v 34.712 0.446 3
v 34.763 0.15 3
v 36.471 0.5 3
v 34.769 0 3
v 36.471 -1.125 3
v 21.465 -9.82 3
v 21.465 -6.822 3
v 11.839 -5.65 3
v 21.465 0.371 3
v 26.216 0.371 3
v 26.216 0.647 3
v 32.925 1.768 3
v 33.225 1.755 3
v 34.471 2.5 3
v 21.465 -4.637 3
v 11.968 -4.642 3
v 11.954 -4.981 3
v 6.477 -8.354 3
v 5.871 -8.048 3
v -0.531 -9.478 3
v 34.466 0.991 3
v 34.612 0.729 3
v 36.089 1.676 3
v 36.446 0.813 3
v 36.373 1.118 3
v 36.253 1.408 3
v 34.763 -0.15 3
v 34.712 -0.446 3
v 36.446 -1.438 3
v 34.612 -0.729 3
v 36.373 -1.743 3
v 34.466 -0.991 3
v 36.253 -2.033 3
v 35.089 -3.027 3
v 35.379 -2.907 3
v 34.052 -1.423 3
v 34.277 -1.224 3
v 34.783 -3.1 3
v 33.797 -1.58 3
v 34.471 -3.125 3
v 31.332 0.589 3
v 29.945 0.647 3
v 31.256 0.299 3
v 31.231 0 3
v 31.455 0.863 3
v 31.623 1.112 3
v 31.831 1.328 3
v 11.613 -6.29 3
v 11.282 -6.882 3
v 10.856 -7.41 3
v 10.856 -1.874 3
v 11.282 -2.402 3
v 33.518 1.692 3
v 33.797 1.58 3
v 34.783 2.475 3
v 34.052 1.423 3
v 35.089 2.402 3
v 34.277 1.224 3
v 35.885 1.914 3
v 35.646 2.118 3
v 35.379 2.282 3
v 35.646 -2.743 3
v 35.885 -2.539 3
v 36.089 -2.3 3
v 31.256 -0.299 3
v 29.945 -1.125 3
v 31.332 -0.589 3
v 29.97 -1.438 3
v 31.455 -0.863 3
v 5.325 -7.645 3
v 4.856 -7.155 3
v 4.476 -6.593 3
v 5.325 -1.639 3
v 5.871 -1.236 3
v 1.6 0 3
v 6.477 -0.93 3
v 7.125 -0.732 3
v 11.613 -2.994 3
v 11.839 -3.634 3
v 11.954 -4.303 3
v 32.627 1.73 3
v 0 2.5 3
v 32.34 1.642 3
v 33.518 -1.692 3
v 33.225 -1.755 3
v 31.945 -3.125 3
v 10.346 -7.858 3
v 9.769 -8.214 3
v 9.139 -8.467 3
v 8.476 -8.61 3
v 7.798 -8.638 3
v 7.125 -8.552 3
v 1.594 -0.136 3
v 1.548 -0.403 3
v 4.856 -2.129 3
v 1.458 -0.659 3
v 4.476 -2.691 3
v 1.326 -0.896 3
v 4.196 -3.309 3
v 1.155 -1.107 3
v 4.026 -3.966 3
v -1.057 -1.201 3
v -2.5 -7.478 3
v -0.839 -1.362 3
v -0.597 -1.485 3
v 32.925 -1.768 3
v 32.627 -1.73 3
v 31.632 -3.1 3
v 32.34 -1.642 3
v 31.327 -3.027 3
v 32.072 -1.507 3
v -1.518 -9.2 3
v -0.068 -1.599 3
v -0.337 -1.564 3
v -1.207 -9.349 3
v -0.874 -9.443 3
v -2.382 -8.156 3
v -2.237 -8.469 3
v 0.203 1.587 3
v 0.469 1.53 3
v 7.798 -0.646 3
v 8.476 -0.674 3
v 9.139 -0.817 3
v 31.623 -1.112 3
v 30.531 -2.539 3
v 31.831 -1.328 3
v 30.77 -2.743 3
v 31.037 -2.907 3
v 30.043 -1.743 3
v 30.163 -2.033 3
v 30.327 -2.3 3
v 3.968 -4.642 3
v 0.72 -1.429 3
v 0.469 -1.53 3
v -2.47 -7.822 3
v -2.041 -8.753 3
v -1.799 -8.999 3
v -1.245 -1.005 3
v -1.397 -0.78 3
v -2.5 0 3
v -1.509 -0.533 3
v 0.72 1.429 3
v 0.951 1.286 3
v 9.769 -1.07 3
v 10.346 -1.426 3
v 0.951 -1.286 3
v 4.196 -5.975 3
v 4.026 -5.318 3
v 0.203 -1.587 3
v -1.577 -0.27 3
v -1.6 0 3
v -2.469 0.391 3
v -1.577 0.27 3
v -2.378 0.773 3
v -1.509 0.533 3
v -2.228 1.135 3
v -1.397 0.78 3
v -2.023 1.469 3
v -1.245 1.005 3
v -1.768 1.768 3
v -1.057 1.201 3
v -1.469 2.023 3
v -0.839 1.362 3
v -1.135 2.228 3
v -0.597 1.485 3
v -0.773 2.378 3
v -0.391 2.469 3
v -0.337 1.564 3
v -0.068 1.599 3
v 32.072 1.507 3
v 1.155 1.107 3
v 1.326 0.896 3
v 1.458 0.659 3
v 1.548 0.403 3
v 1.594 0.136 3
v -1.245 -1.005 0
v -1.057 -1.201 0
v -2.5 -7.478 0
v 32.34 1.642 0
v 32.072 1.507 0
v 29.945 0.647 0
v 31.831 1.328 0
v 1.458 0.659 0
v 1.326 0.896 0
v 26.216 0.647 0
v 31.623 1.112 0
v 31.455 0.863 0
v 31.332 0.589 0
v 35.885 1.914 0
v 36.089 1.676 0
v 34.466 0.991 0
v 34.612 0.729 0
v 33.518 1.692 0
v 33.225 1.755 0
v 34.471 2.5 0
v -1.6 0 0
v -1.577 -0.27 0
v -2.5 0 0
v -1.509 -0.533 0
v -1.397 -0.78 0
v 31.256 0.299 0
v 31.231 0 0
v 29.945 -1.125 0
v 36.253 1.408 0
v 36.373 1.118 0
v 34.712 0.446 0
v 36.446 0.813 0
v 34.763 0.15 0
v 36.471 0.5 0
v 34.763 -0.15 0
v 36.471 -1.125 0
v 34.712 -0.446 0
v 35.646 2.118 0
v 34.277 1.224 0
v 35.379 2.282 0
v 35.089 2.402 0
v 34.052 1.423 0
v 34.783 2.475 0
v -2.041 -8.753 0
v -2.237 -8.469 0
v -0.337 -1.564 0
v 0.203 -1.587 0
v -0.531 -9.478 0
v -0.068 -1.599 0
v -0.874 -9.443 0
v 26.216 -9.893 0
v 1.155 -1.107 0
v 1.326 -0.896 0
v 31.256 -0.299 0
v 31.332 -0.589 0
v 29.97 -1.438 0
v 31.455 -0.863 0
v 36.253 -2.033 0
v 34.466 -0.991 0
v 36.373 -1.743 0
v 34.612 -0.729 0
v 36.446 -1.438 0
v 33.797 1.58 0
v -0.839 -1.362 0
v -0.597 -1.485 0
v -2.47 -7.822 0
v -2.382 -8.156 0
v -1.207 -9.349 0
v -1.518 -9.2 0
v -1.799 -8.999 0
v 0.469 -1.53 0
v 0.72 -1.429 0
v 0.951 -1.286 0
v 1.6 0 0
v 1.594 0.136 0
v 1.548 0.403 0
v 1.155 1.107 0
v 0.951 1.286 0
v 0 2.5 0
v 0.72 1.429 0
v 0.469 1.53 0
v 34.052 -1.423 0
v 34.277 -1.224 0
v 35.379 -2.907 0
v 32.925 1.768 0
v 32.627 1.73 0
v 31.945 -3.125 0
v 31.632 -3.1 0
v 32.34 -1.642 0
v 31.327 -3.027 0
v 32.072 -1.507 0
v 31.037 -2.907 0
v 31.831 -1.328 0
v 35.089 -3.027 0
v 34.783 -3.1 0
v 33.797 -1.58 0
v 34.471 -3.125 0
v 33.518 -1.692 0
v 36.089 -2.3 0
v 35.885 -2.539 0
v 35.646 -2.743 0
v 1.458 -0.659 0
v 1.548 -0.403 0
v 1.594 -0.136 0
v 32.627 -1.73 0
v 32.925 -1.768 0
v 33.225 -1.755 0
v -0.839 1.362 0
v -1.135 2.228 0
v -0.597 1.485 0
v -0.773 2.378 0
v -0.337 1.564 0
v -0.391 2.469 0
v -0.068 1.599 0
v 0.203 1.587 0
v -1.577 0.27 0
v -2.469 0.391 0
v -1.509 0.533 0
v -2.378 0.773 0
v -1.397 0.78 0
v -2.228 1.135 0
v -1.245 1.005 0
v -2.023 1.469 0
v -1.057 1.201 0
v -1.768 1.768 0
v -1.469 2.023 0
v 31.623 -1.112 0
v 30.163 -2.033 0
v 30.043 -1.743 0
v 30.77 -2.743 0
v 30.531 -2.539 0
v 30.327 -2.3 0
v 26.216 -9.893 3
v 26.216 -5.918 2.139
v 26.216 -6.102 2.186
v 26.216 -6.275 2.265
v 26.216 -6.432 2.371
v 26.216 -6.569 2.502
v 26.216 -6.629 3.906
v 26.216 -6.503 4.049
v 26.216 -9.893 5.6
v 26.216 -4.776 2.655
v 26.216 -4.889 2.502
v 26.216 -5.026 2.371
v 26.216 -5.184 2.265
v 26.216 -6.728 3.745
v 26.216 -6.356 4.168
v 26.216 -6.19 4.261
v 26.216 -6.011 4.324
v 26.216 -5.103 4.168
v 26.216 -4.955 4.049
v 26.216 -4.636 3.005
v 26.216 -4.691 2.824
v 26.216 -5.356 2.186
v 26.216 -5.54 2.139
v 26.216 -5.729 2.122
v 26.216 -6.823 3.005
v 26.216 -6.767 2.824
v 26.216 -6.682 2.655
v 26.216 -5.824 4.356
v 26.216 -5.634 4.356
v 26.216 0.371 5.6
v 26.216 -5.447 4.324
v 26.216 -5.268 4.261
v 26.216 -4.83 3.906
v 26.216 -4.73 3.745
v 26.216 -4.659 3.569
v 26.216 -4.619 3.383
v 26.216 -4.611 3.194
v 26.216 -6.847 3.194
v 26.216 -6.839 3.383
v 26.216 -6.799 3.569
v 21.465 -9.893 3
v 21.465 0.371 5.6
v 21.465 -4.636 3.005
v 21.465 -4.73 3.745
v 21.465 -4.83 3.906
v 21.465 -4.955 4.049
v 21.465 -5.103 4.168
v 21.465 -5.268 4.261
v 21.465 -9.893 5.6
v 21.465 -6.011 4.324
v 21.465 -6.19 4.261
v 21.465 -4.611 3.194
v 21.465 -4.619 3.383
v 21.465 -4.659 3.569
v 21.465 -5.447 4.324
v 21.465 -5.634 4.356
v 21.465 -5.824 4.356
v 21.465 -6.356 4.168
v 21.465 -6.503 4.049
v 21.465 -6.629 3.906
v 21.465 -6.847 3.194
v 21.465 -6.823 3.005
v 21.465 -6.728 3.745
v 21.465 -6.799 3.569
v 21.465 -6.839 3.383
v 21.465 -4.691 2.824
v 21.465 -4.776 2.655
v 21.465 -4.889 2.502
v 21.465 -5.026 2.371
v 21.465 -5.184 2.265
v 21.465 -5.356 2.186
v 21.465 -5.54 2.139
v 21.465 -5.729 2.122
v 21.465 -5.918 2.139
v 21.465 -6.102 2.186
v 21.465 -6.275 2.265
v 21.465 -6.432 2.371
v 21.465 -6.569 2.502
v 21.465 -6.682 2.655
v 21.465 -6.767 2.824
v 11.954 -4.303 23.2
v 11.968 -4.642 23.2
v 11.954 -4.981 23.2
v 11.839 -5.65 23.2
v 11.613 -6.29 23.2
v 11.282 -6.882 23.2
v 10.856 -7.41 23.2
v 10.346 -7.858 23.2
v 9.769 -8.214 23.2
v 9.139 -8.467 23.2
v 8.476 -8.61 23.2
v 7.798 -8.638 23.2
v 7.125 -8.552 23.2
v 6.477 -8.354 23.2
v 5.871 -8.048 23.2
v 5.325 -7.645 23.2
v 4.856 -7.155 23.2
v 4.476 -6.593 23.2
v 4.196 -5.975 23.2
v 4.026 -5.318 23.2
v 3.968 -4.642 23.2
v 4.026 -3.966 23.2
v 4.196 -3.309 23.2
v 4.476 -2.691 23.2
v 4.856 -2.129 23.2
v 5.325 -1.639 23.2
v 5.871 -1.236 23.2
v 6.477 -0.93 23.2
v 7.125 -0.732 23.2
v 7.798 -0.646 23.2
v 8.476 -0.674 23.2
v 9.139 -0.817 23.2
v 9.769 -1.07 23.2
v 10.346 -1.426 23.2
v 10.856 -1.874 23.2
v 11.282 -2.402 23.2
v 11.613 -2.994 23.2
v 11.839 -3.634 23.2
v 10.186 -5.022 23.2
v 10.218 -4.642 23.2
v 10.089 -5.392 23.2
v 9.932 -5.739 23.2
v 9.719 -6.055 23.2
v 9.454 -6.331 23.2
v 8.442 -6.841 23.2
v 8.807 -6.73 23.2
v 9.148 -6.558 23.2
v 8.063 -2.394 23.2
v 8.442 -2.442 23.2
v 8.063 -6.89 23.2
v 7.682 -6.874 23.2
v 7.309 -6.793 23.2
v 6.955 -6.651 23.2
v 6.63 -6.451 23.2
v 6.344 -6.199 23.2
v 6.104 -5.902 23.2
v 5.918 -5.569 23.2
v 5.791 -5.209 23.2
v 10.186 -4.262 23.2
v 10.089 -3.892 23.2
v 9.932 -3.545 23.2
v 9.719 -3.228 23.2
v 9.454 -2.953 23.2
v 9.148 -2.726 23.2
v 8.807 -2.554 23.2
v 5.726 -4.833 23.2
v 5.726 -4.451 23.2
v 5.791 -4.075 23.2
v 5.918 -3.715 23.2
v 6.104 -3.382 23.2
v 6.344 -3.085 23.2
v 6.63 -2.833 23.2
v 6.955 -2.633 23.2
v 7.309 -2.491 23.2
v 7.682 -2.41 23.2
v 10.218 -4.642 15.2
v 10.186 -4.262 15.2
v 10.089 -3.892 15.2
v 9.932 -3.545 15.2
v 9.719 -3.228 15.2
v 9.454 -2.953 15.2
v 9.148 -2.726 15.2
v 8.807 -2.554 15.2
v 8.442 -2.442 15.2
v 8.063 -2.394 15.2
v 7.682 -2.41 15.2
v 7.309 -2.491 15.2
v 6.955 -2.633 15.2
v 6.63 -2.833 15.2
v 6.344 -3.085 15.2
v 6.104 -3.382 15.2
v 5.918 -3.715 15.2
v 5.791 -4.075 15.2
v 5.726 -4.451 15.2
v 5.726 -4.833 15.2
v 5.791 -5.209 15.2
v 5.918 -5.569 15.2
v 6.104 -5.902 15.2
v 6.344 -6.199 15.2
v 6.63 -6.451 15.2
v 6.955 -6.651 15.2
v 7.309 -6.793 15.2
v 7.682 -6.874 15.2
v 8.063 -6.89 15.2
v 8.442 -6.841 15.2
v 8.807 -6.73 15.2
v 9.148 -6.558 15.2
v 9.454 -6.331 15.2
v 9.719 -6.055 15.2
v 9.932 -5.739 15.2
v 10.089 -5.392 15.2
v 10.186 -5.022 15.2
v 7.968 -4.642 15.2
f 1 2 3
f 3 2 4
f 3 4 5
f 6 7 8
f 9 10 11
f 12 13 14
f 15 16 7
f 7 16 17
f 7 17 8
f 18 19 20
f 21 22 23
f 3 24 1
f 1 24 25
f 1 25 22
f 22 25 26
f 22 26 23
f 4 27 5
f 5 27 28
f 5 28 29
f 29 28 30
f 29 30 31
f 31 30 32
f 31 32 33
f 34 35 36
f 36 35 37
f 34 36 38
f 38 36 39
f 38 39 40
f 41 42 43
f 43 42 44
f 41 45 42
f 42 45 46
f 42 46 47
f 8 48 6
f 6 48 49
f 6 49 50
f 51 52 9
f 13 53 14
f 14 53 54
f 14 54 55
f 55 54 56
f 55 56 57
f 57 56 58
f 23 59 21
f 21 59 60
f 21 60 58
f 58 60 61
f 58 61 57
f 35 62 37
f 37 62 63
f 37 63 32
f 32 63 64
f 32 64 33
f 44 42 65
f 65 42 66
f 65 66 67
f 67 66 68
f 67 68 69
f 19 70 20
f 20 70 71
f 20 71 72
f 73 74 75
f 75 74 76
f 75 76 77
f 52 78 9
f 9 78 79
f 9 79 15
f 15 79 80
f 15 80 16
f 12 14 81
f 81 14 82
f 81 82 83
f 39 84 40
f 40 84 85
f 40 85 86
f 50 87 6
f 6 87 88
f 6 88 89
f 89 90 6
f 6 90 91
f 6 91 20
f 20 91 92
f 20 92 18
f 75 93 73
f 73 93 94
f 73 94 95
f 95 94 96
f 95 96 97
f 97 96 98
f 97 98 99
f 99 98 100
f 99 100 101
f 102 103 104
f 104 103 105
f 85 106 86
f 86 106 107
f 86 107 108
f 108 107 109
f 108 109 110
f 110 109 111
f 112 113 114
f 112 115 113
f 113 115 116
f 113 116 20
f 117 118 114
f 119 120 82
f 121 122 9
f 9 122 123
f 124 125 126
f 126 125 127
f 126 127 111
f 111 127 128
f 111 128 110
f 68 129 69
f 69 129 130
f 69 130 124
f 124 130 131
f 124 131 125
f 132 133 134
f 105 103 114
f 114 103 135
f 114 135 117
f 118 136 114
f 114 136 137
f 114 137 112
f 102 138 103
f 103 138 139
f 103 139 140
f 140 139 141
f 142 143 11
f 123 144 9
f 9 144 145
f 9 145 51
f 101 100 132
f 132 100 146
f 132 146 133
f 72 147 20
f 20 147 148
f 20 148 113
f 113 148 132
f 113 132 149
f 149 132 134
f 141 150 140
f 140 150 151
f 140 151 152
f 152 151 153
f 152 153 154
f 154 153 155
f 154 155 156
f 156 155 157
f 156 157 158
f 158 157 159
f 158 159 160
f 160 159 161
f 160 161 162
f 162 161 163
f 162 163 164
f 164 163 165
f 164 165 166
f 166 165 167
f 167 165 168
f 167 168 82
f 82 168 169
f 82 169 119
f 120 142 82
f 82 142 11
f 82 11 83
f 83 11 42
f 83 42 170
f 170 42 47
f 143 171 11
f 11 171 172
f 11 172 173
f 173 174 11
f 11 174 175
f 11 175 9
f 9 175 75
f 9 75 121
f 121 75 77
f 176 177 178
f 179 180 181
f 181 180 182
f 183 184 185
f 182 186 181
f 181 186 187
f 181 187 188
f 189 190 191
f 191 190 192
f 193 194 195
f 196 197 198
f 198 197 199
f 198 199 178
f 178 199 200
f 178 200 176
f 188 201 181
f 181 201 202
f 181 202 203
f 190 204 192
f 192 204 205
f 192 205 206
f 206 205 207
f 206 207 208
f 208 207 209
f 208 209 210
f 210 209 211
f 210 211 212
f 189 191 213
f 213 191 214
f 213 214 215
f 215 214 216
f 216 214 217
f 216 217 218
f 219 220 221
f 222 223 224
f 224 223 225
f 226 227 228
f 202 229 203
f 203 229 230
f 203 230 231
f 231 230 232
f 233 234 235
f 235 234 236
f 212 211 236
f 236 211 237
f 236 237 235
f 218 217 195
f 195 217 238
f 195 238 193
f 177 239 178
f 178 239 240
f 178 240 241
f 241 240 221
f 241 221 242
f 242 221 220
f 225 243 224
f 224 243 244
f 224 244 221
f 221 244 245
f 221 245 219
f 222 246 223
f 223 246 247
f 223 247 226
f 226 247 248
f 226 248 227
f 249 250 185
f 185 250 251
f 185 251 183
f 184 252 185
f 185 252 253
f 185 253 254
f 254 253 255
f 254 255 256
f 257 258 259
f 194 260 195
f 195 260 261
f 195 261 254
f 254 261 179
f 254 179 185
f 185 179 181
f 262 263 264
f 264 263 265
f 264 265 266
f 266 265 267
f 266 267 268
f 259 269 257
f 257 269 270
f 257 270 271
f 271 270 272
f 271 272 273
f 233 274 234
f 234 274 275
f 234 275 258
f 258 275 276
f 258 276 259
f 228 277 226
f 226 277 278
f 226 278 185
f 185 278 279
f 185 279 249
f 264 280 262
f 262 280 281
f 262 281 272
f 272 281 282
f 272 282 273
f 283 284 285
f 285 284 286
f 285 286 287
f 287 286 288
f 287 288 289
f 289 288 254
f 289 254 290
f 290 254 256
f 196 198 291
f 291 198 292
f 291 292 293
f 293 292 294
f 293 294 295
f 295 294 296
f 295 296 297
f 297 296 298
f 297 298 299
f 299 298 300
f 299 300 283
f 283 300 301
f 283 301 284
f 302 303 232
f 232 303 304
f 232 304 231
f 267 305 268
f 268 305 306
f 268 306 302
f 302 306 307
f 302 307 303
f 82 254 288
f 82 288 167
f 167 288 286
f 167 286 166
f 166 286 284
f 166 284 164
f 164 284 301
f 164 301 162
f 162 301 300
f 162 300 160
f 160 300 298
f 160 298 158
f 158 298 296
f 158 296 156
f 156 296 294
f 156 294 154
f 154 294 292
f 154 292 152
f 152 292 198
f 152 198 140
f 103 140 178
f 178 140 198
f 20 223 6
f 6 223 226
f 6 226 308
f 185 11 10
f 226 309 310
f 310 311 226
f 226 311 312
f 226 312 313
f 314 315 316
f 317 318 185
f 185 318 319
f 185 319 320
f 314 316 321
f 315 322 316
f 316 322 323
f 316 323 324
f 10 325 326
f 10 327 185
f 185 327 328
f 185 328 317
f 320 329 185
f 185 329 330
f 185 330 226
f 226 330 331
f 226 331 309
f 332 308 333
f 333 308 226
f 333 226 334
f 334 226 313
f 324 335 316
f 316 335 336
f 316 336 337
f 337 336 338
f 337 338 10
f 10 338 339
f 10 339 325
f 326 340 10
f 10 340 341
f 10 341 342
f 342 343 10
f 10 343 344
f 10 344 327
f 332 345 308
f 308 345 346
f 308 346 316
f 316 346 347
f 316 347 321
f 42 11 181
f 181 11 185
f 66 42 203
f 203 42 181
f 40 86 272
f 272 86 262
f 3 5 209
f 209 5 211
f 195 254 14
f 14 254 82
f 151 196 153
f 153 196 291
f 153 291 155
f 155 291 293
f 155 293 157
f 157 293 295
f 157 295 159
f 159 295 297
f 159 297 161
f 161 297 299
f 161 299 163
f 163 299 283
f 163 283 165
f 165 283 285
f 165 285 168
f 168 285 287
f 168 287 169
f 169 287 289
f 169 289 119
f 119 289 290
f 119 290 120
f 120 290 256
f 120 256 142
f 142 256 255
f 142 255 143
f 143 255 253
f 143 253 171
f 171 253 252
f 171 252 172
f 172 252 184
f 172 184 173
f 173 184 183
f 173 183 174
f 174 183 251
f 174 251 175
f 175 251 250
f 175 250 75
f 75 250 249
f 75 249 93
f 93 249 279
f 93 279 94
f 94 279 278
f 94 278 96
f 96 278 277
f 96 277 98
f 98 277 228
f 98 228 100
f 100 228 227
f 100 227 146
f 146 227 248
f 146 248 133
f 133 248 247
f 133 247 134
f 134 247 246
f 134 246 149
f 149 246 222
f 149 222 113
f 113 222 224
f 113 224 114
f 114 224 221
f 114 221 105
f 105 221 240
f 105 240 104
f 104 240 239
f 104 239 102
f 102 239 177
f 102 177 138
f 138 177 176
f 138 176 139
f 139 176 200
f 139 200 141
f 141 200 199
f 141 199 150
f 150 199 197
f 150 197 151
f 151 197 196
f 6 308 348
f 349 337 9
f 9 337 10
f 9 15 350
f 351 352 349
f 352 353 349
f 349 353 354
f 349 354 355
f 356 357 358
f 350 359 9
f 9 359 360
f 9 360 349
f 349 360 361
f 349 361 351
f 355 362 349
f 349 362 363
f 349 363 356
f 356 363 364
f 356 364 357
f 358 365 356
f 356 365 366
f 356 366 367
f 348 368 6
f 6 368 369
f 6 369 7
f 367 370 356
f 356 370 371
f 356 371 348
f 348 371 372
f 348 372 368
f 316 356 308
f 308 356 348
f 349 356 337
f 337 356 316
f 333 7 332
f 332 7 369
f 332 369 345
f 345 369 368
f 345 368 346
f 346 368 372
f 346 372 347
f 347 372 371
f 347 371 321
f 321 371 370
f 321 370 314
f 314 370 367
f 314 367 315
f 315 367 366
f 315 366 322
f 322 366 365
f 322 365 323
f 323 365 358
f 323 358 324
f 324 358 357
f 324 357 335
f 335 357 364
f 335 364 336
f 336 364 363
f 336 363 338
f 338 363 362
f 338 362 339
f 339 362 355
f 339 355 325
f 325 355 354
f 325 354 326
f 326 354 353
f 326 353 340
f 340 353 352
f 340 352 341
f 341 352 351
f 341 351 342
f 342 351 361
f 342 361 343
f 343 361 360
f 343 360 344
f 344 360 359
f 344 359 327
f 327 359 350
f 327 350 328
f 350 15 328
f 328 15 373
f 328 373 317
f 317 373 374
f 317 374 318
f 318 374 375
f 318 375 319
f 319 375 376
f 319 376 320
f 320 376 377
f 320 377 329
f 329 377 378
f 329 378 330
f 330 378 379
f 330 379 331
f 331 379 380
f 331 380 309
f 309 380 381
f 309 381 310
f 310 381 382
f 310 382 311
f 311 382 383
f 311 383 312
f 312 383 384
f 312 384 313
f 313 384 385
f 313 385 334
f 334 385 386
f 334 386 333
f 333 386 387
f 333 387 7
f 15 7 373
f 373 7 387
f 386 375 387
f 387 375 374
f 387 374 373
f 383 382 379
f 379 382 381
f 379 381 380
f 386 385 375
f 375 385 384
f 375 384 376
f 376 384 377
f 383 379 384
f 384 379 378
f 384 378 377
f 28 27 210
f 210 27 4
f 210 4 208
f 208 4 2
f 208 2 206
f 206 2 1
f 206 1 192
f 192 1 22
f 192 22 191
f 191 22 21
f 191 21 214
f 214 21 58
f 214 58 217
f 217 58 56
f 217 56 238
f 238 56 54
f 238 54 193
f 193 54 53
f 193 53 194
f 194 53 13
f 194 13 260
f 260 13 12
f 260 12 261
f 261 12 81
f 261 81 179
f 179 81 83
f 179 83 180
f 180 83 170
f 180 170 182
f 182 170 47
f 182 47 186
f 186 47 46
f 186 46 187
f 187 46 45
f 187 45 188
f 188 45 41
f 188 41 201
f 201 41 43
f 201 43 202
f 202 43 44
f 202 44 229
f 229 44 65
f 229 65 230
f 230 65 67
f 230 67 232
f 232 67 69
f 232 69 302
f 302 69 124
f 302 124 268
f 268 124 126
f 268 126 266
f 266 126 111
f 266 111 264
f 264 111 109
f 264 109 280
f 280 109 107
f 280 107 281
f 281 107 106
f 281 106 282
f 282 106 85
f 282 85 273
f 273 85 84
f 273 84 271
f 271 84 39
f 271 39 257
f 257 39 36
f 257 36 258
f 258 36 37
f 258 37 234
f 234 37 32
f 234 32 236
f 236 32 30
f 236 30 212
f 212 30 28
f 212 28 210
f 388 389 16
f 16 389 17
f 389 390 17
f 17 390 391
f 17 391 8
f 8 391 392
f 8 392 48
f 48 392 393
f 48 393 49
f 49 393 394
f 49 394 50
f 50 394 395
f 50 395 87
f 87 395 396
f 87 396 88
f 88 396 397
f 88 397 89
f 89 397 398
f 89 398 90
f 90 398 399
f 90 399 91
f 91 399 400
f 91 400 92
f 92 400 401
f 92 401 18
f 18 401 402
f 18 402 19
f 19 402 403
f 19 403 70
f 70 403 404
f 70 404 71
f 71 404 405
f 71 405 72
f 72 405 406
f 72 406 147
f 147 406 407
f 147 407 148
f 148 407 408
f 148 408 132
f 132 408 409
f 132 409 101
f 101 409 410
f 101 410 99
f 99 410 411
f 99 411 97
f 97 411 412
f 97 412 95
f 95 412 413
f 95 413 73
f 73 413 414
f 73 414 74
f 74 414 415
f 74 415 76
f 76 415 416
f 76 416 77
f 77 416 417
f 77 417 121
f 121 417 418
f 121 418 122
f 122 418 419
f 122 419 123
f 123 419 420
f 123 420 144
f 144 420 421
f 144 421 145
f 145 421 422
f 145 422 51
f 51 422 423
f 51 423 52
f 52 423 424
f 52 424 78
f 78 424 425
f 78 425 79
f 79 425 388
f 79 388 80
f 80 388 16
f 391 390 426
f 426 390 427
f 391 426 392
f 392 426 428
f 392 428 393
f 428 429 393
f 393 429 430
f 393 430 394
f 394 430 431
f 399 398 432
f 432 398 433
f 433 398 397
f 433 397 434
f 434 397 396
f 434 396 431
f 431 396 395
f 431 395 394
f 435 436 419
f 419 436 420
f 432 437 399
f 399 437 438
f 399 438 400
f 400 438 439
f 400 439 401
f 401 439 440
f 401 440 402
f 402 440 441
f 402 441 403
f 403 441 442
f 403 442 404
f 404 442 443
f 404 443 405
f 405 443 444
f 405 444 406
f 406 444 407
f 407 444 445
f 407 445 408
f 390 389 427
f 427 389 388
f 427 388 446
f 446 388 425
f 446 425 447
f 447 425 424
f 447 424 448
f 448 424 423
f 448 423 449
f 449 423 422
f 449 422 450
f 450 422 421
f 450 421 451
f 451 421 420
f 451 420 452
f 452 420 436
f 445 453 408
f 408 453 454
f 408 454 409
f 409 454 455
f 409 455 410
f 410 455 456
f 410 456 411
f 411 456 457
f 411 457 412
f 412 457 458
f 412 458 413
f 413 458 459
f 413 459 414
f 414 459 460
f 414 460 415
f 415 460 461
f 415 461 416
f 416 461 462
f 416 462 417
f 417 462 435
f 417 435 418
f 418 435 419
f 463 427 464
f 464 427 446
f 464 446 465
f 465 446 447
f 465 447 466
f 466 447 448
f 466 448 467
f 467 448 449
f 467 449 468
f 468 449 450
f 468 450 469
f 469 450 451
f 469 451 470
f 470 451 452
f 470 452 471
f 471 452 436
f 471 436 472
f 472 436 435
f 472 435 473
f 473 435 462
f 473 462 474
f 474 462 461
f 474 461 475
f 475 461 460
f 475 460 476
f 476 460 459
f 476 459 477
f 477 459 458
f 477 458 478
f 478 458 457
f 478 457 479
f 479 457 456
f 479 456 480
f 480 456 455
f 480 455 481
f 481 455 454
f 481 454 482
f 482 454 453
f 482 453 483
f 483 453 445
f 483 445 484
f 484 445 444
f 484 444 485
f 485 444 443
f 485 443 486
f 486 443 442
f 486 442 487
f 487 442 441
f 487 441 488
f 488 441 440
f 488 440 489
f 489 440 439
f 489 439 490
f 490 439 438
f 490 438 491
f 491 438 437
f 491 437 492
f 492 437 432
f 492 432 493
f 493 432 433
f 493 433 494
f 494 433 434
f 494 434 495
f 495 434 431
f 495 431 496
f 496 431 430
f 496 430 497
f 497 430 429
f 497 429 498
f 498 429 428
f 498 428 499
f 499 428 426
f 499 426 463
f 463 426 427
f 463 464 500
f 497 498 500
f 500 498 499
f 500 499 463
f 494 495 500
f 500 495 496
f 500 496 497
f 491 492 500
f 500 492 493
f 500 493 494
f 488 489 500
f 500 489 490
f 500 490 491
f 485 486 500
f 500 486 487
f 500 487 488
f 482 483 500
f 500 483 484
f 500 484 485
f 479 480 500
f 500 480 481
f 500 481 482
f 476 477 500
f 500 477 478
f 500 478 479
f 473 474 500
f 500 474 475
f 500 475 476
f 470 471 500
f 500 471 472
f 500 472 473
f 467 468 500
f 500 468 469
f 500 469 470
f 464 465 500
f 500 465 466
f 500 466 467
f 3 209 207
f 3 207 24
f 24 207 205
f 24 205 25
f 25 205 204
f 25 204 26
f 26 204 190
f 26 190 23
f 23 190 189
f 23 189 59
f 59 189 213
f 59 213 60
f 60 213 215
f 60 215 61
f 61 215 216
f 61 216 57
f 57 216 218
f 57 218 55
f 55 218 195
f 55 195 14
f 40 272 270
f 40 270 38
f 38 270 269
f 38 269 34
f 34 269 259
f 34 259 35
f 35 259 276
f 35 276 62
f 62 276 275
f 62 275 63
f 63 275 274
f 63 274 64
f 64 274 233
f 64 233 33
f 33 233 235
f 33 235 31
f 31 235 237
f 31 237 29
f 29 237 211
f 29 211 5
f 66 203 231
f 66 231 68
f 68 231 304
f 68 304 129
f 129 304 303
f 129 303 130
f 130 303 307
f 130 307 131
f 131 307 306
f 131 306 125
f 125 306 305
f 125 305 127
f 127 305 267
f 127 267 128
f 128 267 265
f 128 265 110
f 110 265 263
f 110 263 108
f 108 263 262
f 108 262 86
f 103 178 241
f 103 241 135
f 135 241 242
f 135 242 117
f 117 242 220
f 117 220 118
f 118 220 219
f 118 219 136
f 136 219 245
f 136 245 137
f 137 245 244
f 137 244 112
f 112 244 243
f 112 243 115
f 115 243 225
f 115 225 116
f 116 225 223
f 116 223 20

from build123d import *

# Parameters (mm, degrees)
SKETCH1_R           = 1.6
BOSS_EXTRUDE1_DEPTH = 3
SKETCH2_W           = 4.751236483
SKETCH2_H           = 10.264254991
BOSS_EXTRUDE2_DEPTH = 2.6
SKETCH3_R           = 1.118711993
CUT_EXTRUDE1_DEPTH  = 4.751236483
SKETCH4_R           = 1.769310005
CUT_EXTRUDE2_DEPTH  = 5
SKETCH6_R           = 4
BOSS_EXTRUDE3_DEPTH = 20.2
SKETCH7_R           = 2.25
CUT_EXTRUDE3_DEPTH  = 8
FILLET1_R           = 2


with BuildPart() as part:
    # Sketch1 → Boss-Extrude1 (new body)
    with BuildSketch(Plane.XY):
        with BuildLine():
            Line((0, 2.5), (36.470564138, 2.5))
            Line((36.470564138, 2.5), (36.470564138, -3.124783652))
            Line((36.470564138, -3.124783652), (29.945161274, -3.124783652))
            Line((29.945161274, -3.124783652), (29.945161274, 0.647373355))
            Line((29.945161274, 0.647373355), (26.216359637, 0.647373355))
            Line((26.216359637, 0.647373355), (26.216359637, -9.893369232))
            Line((26.216359637, -9.893369232), (-2.5, -9.447534254))
            Line((-2.5, -9.447534254), (-2.5, 0))
            ThreePointArc((-2.5, 0), (-1.767766953, 1.767766953), (0, 2.5))
        make_face()
        Circle(SKETCH1_R, mode=Mode.SUBTRACT)
    extrude(amount=BOSS_EXTRUDE1_DEPTH)

    # Sketch2 → Boss-Extrude2 (add)
    with BuildSketch(Plane.XY.offset(3)):
        with Locations((23.840741396, -4.761241737)):
            Rectangle(SKETCH2_W, SKETCH2_H)
    extrude(amount=BOSS_EXTRUDE2_DEPTH)

    # Sketch3 → Cut-Extrude1 (cut)
    with BuildSketch(Plane(origin=(26.216359637, 0, 0), x_dir=(0, 0, -1), z_dir=(1, 0, 0))):
        with Locations((-3.241173045, -5.729114241)):
            Circle(SKETCH3_R)
    extrude(amount=-CUT_EXTRUDE1_DEPTH, mode=Mode.SUBTRACT)

    # Sketch4 → Cut-Extrude2 (cut)
    with BuildSketch(Plane(origin=(0, 0, 0), x_dir=(-1, 0, 0), z_dir=(0, 0, -1))):
        with Locations((-33, 0)):
            Circle(SKETCH4_R)
    extrude(amount=-CUT_EXTRUDE2_DEPTH, mode=Mode.SUBTRACT)

    # Sketch6 → Boss-Extrude3 (add)
    with BuildSketch(Plane.XY.offset(3)):
        with Locations((7.967965429, -4.6419924)):
            Circle(SKETCH6_R)
    extrude(amount=BOSS_EXTRUDE3_DEPTH)

    # Sketch7 → Cut-Extrude3 (cut)
    with BuildSketch(Plane.XY.offset(23.2)):
        with Locations((7.967965429, -4.6419924)):
            Circle(SKETCH7_R)
    extrude(amount=-CUT_EXTRUDE3_DEPTH, mode=Mode.SUBTRACT)

    # Fillet1
    fillet1_edges = [part.edges().sort_by_distance(p)[0] for p in [
        (36.470564138, 2.5, 1.5),
        (36.470564138, -3.124783652, 1.5),
        (29.945161274, -3.124783652, 1.5),
        (-2.5, -9.447534254, 1.5),
    ]]
    fillet(fillet1_edges, radius=FILLET1_R)


solid = part.part
